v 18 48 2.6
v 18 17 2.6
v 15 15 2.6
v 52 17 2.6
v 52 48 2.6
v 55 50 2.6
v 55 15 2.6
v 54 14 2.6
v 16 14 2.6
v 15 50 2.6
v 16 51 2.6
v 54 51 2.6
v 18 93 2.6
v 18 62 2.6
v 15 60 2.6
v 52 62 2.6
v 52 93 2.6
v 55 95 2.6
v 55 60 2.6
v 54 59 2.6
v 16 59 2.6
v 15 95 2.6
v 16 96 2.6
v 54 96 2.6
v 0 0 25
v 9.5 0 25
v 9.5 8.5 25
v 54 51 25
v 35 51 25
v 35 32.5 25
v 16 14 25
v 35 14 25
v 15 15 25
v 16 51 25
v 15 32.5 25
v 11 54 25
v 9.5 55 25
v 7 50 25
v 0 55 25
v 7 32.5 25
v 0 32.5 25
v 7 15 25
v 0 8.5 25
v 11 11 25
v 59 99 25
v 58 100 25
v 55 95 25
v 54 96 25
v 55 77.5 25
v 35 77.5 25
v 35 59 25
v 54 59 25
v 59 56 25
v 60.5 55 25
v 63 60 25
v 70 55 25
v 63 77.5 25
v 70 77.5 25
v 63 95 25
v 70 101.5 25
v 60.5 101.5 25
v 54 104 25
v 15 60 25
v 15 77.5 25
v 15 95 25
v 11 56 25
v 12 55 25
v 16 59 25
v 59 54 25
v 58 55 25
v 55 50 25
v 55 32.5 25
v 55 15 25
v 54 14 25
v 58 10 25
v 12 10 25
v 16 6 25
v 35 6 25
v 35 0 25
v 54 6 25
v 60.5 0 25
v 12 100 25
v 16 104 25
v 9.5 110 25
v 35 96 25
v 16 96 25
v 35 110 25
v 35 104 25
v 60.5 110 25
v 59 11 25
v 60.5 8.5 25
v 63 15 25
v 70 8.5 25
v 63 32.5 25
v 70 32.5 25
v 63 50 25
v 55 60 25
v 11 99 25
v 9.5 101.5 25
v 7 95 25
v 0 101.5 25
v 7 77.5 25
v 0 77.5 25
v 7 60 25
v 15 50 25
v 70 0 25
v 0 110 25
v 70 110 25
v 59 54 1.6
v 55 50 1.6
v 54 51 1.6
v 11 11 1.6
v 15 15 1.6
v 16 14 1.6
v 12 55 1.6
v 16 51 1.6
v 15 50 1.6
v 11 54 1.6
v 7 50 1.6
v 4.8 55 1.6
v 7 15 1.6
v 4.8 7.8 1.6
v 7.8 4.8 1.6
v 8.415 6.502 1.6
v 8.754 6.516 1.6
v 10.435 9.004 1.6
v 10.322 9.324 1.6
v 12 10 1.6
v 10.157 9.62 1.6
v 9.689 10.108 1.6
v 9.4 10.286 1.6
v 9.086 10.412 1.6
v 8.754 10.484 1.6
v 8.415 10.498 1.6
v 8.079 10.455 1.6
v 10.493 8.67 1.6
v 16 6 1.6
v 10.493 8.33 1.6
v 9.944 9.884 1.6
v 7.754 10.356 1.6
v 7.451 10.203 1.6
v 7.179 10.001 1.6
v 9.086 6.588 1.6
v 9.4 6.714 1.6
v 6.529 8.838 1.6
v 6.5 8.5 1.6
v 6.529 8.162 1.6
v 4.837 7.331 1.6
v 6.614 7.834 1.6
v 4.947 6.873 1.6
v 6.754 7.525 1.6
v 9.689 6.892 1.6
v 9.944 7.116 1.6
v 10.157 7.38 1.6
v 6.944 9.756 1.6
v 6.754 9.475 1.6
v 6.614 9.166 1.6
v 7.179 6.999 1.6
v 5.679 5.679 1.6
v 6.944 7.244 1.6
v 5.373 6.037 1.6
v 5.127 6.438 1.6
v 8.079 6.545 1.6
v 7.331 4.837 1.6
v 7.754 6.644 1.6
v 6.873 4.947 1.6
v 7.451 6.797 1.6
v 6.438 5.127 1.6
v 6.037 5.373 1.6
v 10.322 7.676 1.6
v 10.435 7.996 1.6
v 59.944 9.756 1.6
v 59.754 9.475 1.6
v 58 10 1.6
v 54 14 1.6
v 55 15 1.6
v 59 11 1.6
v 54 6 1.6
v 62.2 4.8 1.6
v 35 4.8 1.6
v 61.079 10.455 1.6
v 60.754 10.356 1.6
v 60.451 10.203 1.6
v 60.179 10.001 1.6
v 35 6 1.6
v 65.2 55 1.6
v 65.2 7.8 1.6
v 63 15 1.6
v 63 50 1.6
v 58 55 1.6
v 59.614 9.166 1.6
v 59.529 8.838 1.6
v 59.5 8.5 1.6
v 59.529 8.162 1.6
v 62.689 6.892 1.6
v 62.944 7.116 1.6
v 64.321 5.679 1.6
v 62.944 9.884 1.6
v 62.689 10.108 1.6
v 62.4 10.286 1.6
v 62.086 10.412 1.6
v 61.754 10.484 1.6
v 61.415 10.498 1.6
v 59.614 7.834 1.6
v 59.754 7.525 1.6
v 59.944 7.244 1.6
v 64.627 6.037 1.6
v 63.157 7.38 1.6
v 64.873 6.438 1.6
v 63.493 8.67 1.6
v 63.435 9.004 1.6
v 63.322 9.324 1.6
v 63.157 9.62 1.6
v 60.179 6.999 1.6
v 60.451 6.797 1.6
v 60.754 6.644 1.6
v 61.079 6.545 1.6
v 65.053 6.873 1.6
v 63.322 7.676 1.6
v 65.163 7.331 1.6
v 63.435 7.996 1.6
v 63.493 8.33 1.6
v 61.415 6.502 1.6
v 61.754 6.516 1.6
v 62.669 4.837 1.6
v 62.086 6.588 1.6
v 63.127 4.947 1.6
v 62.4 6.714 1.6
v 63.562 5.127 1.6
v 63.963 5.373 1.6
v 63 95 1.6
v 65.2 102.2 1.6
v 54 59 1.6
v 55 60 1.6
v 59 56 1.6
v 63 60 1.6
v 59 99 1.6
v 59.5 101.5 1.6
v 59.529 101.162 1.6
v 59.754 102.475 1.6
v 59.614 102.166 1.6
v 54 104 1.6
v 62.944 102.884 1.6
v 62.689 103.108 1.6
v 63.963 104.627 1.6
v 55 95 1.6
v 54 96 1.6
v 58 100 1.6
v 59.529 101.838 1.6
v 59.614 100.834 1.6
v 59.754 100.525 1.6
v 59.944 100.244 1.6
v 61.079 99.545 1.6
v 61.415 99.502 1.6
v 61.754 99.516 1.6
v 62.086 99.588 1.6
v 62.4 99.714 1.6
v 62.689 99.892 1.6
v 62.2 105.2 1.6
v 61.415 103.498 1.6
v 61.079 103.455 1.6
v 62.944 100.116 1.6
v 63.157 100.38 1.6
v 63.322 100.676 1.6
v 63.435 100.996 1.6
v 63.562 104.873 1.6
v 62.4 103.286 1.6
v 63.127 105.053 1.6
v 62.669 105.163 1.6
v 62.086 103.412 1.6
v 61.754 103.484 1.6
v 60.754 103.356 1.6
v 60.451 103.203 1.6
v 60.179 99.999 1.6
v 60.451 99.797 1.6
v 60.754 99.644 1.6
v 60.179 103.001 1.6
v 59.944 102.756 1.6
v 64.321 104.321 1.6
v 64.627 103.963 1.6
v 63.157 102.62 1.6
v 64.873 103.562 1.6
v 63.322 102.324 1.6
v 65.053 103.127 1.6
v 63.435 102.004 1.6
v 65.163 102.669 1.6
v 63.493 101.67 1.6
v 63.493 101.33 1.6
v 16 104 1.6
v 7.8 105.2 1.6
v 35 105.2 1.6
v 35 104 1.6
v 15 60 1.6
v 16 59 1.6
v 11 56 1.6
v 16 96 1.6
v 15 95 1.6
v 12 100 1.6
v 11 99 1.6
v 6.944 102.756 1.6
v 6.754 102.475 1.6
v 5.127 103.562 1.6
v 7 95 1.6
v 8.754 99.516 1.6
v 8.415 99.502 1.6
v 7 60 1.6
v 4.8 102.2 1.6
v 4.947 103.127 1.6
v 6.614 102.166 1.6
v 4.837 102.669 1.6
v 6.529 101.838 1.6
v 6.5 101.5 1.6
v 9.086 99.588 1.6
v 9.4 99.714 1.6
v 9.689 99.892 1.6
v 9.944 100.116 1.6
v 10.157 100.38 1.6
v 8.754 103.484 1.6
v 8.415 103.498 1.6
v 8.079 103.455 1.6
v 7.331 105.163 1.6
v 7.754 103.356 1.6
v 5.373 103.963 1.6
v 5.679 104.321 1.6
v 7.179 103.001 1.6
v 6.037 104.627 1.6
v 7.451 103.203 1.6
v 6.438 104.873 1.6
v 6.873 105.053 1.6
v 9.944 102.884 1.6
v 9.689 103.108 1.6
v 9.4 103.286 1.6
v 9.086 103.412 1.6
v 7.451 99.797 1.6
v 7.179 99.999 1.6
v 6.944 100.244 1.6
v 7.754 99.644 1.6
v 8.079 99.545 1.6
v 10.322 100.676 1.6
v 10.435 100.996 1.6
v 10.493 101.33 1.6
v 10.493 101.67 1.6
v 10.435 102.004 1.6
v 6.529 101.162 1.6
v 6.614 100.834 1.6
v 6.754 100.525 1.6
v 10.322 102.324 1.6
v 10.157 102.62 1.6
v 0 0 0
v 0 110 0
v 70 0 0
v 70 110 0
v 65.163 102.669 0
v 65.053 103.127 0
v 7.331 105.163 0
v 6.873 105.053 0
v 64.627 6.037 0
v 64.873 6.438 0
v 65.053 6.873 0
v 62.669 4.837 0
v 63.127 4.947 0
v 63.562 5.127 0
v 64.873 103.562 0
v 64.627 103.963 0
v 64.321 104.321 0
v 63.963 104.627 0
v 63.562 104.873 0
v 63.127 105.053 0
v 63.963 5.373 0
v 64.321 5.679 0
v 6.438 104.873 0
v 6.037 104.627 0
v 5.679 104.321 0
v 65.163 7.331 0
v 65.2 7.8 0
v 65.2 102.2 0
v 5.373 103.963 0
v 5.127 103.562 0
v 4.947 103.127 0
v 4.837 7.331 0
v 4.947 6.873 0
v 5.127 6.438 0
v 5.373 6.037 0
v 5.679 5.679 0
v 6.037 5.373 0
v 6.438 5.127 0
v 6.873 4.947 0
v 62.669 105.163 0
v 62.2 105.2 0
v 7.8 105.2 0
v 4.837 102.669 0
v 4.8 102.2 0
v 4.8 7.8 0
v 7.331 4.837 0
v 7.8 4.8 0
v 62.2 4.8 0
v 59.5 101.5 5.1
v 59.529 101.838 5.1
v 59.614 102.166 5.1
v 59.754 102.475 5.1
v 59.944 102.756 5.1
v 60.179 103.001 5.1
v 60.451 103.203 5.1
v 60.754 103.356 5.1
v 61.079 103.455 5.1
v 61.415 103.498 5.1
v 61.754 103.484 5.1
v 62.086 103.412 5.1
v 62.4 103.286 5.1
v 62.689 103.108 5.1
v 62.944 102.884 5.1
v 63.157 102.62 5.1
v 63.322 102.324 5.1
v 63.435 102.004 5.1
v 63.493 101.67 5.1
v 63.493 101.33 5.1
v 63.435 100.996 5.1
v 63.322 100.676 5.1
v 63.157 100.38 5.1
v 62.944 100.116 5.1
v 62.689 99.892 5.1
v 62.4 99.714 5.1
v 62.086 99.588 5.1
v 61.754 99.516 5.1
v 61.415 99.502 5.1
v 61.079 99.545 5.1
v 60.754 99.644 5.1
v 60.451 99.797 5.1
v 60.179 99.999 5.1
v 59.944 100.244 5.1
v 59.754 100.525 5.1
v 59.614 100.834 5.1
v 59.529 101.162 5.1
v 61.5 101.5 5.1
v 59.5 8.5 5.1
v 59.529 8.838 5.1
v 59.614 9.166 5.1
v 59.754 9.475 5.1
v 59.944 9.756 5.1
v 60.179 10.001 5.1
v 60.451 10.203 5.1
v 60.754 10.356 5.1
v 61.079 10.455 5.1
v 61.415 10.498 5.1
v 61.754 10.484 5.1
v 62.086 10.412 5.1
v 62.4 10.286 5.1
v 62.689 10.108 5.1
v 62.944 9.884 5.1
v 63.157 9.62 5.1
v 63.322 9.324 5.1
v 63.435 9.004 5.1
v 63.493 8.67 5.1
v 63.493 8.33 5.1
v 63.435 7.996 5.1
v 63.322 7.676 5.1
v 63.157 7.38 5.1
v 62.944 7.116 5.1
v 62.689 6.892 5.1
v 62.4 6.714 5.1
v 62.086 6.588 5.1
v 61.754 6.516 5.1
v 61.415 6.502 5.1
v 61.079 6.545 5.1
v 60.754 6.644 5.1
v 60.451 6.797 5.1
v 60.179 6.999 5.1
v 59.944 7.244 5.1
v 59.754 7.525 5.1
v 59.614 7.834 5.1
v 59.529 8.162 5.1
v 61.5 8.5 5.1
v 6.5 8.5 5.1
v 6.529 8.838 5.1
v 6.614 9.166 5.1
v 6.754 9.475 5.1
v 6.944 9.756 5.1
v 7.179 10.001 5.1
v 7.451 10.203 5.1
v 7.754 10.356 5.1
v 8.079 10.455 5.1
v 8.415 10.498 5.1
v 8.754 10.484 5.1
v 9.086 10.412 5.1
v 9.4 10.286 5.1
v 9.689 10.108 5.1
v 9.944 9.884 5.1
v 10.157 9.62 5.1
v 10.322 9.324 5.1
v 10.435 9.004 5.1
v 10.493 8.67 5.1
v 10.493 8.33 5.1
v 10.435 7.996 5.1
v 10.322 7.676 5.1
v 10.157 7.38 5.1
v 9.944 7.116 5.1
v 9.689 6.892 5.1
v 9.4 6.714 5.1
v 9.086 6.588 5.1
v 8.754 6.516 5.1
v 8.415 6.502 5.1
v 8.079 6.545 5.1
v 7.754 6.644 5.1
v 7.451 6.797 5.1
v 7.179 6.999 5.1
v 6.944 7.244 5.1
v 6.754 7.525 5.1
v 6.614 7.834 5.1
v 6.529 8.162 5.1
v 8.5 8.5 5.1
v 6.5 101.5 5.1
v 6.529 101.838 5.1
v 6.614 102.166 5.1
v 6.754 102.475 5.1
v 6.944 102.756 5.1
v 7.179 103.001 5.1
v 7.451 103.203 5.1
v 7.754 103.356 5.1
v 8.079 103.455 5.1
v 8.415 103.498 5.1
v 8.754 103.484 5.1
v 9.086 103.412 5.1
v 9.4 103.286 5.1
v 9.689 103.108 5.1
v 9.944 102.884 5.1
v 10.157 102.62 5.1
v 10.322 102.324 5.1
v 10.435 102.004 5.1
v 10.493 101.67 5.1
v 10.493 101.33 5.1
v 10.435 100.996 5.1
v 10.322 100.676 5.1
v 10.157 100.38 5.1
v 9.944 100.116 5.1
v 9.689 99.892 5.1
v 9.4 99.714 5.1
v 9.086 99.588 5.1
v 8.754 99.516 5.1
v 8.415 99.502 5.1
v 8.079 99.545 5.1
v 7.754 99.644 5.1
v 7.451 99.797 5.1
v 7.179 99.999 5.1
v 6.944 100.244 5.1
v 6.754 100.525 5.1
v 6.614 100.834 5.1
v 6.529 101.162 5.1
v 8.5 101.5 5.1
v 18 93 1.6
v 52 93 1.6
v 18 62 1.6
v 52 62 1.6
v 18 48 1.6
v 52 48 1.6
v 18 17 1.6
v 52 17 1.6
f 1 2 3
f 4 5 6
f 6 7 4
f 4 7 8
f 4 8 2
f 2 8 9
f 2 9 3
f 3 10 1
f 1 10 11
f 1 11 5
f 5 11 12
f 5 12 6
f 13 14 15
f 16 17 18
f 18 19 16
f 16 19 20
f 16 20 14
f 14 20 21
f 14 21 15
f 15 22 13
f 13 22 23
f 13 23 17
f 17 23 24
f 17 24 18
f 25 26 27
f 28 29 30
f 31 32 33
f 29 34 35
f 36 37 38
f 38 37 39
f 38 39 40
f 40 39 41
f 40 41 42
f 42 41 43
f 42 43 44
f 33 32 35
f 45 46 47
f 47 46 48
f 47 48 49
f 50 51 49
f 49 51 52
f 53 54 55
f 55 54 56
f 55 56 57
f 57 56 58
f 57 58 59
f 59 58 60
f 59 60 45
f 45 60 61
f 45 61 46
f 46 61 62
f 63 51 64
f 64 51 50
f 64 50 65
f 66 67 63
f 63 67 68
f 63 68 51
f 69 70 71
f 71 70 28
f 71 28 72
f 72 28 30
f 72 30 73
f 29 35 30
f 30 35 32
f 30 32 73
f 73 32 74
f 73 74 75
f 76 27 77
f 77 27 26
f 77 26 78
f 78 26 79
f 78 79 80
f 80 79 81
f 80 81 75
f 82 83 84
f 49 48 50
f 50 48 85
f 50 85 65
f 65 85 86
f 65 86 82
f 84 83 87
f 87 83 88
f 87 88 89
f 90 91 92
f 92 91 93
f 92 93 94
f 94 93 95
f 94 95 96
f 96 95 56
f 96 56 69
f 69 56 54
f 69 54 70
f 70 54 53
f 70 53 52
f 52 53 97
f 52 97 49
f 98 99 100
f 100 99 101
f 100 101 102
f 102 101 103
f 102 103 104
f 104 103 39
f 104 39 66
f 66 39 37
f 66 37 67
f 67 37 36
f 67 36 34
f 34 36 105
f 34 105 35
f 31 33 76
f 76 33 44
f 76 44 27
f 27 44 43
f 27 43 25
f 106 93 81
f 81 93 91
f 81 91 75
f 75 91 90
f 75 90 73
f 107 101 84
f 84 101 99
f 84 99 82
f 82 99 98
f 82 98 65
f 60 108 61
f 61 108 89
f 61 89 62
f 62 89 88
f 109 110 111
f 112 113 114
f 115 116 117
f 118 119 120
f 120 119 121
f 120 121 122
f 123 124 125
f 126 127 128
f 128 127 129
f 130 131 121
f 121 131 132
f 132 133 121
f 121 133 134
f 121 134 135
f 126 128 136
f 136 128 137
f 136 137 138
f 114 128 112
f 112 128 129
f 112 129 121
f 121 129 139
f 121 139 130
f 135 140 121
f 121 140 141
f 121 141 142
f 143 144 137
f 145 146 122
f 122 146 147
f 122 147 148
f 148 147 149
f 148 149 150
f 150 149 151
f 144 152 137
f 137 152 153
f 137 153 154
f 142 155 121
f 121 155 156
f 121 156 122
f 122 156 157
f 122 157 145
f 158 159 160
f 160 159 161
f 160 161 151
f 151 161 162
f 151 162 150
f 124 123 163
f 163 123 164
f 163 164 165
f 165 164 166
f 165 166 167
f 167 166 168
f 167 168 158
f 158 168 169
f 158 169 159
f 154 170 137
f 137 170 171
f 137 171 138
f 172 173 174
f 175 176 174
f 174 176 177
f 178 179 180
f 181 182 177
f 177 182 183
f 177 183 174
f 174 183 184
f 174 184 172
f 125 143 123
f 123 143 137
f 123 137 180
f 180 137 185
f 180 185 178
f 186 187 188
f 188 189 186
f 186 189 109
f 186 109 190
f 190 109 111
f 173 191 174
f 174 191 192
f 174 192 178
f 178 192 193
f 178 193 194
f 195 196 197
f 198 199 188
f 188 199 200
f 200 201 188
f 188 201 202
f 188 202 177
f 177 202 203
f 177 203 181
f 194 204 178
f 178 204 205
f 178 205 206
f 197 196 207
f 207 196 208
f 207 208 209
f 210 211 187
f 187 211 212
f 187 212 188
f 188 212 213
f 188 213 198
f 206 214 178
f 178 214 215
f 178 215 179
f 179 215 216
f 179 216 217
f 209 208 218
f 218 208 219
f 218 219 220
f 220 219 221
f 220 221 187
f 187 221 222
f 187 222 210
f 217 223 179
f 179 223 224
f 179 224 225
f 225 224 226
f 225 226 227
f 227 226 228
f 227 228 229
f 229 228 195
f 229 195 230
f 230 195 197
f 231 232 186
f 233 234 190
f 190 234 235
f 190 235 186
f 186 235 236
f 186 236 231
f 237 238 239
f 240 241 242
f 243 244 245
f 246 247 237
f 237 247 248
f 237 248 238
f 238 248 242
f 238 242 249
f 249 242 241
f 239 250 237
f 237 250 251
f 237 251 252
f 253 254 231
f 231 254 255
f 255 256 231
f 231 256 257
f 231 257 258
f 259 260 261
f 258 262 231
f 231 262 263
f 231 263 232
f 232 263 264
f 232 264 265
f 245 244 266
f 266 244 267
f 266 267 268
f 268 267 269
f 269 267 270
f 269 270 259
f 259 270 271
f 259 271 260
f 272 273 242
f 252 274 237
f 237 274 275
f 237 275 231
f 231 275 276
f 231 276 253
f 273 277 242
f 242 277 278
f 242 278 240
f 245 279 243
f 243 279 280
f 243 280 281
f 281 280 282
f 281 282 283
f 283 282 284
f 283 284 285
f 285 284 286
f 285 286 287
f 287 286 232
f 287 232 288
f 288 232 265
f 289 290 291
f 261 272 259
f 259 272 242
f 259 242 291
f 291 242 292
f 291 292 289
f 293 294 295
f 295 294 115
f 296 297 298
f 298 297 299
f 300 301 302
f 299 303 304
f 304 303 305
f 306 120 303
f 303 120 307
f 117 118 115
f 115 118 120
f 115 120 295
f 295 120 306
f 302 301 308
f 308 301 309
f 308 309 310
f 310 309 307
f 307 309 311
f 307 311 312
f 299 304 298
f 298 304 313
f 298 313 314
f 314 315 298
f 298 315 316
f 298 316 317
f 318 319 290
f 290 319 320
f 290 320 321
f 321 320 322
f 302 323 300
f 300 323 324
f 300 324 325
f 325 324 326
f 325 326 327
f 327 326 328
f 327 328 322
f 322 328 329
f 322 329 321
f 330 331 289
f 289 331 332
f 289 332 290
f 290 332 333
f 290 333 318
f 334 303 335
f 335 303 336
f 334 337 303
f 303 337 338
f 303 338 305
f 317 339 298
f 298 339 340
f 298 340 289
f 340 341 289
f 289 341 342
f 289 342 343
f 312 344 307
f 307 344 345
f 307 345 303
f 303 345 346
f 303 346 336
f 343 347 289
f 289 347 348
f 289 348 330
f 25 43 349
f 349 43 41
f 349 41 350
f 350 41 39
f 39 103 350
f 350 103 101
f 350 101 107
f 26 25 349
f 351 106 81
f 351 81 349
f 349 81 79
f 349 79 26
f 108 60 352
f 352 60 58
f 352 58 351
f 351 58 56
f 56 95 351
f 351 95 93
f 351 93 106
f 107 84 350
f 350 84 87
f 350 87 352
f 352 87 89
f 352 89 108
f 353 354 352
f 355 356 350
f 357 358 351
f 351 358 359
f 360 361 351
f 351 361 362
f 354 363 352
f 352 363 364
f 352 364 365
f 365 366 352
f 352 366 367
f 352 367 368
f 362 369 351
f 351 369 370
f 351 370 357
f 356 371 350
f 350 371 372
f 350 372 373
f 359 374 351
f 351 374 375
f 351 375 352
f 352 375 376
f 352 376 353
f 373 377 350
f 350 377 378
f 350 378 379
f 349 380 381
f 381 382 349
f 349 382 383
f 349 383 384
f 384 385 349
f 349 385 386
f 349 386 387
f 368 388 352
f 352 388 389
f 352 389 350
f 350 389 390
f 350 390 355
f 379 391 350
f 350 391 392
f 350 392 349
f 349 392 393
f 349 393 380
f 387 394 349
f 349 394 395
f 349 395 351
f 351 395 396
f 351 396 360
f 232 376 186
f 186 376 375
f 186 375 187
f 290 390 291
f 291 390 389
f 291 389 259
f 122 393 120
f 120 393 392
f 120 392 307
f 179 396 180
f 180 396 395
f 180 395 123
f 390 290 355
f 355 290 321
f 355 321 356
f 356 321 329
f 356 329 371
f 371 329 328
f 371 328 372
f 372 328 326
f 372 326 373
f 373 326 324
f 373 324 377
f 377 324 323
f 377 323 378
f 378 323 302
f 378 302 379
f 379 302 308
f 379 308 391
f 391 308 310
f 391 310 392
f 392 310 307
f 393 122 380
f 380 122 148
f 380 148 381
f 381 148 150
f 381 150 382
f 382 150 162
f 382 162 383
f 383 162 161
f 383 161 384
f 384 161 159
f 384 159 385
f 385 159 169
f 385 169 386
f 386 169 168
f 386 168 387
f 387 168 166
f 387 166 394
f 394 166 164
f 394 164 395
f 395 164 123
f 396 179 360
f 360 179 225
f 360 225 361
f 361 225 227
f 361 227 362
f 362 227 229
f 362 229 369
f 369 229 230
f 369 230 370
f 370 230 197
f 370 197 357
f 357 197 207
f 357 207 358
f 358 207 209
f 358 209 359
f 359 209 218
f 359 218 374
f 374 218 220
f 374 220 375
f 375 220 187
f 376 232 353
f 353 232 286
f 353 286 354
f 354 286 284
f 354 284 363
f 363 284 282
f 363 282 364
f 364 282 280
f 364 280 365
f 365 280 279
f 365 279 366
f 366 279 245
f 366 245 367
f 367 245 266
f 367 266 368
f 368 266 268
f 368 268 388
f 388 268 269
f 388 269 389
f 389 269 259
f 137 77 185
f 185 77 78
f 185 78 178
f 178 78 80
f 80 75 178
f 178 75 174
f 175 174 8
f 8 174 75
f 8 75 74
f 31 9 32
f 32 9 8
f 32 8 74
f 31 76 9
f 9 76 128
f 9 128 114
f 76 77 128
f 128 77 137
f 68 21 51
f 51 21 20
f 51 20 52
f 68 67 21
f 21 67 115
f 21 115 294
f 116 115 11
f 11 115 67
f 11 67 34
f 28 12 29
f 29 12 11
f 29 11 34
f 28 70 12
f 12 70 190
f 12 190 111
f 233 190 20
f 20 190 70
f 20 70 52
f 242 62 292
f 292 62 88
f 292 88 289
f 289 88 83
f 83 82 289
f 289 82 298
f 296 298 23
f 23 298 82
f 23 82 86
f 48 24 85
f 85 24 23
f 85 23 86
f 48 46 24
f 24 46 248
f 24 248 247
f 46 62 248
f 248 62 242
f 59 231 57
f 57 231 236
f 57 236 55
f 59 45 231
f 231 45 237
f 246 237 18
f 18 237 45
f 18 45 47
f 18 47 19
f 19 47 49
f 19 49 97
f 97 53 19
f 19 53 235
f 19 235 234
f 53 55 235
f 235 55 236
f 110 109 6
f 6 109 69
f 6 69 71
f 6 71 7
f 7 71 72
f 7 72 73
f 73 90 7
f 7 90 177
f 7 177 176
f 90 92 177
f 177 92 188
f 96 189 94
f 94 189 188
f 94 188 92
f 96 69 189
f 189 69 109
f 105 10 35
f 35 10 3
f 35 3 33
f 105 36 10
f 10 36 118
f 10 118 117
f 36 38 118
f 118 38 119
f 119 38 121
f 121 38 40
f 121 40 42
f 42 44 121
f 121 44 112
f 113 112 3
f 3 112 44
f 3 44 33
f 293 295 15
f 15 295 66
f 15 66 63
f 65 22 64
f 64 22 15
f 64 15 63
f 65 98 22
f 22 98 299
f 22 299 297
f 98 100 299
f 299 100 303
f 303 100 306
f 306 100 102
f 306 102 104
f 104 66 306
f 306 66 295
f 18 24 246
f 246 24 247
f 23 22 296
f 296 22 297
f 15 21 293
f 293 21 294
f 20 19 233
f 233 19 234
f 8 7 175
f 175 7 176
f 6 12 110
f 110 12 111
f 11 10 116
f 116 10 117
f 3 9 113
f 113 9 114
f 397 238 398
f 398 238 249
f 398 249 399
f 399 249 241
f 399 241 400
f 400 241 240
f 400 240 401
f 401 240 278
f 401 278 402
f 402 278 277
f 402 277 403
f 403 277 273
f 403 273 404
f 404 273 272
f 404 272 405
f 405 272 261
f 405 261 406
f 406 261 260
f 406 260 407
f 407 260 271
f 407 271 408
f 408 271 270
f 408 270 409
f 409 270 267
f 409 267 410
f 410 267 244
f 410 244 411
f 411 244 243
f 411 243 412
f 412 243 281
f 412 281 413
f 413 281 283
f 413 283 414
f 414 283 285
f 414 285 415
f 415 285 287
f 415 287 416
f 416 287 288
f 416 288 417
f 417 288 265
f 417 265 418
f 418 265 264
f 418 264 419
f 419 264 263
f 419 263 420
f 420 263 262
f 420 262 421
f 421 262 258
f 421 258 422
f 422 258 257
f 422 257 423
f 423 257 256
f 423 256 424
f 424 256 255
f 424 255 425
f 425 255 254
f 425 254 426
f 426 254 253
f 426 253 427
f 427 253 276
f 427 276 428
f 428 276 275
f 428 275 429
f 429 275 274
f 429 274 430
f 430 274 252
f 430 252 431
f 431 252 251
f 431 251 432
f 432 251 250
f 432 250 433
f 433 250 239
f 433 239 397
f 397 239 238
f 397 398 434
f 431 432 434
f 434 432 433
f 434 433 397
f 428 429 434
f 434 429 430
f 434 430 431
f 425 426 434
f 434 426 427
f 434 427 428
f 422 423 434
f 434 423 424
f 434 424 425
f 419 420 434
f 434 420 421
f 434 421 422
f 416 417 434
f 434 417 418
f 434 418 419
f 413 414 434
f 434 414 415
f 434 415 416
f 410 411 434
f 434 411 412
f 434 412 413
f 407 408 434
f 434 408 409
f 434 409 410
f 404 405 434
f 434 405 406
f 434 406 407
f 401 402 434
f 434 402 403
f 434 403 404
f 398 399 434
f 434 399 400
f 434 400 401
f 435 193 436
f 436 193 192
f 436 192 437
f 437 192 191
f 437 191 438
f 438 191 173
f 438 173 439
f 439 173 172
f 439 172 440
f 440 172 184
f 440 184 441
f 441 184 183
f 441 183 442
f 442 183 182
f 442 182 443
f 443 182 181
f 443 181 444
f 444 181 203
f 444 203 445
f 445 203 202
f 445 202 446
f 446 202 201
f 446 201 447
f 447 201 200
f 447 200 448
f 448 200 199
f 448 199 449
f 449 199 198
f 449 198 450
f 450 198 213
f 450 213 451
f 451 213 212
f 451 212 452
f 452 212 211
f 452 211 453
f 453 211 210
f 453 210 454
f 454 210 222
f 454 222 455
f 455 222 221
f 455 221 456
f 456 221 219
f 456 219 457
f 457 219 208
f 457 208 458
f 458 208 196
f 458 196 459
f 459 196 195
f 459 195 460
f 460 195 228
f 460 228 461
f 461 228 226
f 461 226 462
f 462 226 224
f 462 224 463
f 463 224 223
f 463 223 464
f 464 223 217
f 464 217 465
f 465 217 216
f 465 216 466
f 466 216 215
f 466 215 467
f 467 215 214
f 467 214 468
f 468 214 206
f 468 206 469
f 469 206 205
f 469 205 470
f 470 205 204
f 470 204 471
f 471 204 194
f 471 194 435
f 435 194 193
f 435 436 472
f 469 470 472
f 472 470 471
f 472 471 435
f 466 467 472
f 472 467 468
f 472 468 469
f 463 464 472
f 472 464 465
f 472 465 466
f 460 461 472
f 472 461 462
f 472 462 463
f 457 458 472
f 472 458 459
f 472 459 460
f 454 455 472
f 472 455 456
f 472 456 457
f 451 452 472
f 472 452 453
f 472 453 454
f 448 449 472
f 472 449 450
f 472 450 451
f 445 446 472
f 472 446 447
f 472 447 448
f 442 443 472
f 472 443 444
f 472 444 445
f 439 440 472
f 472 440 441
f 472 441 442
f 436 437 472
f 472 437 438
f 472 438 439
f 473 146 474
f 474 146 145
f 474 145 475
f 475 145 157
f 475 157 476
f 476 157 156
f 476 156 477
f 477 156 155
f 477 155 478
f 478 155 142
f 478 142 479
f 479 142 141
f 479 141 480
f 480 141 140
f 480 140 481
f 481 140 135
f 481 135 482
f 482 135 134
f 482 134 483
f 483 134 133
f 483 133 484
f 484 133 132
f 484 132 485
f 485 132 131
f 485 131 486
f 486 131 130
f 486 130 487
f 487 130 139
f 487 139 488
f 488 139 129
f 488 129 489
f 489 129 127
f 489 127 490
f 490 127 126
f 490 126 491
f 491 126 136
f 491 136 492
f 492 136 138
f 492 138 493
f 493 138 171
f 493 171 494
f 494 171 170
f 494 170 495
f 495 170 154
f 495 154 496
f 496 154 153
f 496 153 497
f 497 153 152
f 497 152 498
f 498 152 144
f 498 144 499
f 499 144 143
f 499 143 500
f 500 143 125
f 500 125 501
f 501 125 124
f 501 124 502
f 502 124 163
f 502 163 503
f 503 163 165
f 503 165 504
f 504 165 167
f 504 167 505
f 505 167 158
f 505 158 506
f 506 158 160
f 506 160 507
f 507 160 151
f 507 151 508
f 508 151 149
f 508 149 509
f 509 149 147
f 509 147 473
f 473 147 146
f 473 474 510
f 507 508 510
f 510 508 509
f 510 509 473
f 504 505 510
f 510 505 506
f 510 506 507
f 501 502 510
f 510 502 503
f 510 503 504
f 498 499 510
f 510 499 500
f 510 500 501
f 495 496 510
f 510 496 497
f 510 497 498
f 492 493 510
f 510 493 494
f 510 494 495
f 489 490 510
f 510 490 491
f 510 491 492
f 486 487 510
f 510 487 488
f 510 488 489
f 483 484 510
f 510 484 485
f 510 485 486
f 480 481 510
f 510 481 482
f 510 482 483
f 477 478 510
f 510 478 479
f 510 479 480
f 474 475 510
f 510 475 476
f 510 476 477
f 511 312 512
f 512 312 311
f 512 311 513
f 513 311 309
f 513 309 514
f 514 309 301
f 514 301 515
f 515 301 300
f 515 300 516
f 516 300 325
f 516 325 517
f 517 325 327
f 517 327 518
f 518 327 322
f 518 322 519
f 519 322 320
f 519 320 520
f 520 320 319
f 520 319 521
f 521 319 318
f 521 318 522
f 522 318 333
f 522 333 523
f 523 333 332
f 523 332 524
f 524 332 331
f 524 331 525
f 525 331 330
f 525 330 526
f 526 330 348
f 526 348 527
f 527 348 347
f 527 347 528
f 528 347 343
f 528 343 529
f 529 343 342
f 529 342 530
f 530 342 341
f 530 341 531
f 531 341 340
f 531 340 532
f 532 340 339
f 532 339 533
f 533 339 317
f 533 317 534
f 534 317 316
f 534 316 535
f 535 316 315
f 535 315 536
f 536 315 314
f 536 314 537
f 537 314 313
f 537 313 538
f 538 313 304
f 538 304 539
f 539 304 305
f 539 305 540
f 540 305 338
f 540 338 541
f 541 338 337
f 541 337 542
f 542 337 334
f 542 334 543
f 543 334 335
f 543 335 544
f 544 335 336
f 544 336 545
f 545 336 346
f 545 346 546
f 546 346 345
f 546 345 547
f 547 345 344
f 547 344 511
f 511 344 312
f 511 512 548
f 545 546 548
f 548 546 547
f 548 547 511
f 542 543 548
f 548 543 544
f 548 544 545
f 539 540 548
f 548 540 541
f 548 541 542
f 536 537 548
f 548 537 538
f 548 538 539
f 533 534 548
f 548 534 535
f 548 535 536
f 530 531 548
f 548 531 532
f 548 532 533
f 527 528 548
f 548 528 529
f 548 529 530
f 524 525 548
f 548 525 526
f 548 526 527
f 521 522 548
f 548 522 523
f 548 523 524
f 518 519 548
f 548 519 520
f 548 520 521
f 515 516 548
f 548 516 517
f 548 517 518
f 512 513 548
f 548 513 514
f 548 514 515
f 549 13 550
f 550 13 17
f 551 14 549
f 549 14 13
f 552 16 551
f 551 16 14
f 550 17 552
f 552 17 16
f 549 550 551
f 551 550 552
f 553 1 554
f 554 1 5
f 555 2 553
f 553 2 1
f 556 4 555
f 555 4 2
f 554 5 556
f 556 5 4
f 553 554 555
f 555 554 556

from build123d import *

# Parameters (mm, degrees)
SKETCH1_W           = 70
SKETCH1_H           = 110
BOSS_EXTRUDE1_DEPTH = 25
SKETCH2_W           = 60.4
SKETCH2_H           = 100.4
CUT_EXTRUDE1_DEPTH  = 1.6
FILLET1_R           = 3
CUT_EXTRUDE4_DEPTH  = 133.467203488
CUT_EXTRUDE5_DEPTH  = 133.467203488
CUT_EXTRUDE6_DEPTH  = 1
SKETCH3_R           = 2
CUT_EXTRUDE7_DEPTH  = 3.5
SKETCH8_W           = 34
SKETCH8_H           = 31
BOSS_EXTRUDE2_DEPTH = 1


with BuildPart() as part:
    # Sketch1 → Boss-Extrude1 (new body)
    with BuildSketch(Plane.XY):
        with Locations((35, 55)):
            Rectangle(SKETCH1_W, SKETCH1_H)
    extrude(amount=BOSS_EXTRUDE1_DEPTH)

    # Sketch2 → Cut-Extrude1 (cut)
    with BuildSketch(Plane(origin=(0, 0, 0), x_dir=(-1, 0, 0), z_dir=(0, 0, -1))):
        with Locations((-35, 55)):
            Rectangle(SKETCH2_W, SKETCH2_H)
    extrude(amount=-CUT_EXTRUDE1_DEPTH, mode=Mode.SUBTRACT)

    # Fillet1
    fillet1_edges = [part.edges().sort_by_distance(p)[0] for p in [
        (65.2, 4.8, 0.8),
        (65.2, 105.2, 0.8),
        (4.8, 105.2, 0.8),
        (4.8, 4.8, 0.8),
    ]]
    fillet(fillet1_edges, radius=FILLET1_R)

    # Sketch5 → Cut-Extrude4 (cut, through all)
    with BuildSketch(Plane(origin=(0, 0, 1.6), x_dir=(-1, 0, 0), z_dir=(0, 0, -1))):
        Polygon((-54, 14), (-16, 14), (-12, 10), (-16, 6), (-54, 6), (-58, 10), align=None)
        Polygon((-58, 55), (-54, 59), (-16, 59), (-12, 55), (-16, 51), (-54, 51), align=None)
        Polygon((-58, 100), (-54, 104), (-16, 104), (-12, 100), (-16, 96), (-54, 96), align=None)
    extrude(amount=-CUT_EXTRUDE4_DEPTH, mode=Mode.SUBTRACT)

    # Sketch6 → Cut-Extrude5 (cut, through all)
    with BuildSketch(Plane(origin=(0, 0, 1.6), x_dir=(-1, 0, 0), z_dir=(0, 0, -1))):
        Polygon((-55, 15), (-55, 50), (-59, 54), (-63, 50), (-63, 15), (-59, 11), align=None)
        Polygon((-15, 50), (-11, 54), (-7, 50), (-7, 15), (-11, 11), (-15, 15), align=None)
        Polygon((-63, 95), (-59, 99), (-55, 95), (-55, 60), (-59, 56), (-63, 60), align=None)
        Polygon((-15, 95), (-11, 99), (-7, 95), (-7, 60), (-11, 56), (-15, 60), align=None)
    extrude(amount=-CUT_EXTRUDE5_DEPTH, mode=Mode.SUBTRACT)

    # Sketch7 → Cut-Extrude6 (cut)
    with BuildSketch(Plane(origin=(0, 0, 1.6), x_dir=(-1, 0, 0), z_dir=(0, 0, -1))):
        Polygon((-55, 95), (-54, 96), (-16, 96), (-15, 95), (-15, 60), (-16, 59), (-54, 59), (-55, 60), align=None)
        Polygon((-54, 14), (-55, 15), (-55, 50), (-54, 51), (-16, 51), (-15, 50), (-15, 15), (-16, 14), align=None)
    extrude(amount=-CUT_EXTRUDE6_DEPTH, mode=Mode.SUBTRACT)

    # Sketch3 → Cut-Extrude7 (cut)
    with BuildSketch(Plane(origin=(0, 0, 1.6), x_dir=(-1, 0, 0), z_dir=(0, 0, -1))):
        with Locations((-61.5, 101.5)):
            Circle(SKETCH3_R)
        with Locations((-61.5, 8.5)):
            Circle(SKETCH3_R)
        with Locations((-8.5, 8.5)):
            Circle(SKETCH3_R)
        with Locations((-8.5, 101.5)):
            Circle(SKETCH3_R)
    extrude(amount=-CUT_EXTRUDE7_DEPTH, mode=Mode.SUBTRACT)

    # Sketch8 → Boss-Extrude2 (add)
    with BuildSketch(Plane(origin=(0, 0, 2.6), x_dir=(-1, 0, 0), z_dir=(0, 0, -1))):
        with Locations((-35, 77.5)):
            Rectangle(SKETCH8_W, SKETCH8_H)
        with Locations((-35, 32.5)):
            Rectangle(SKETCH8_W, SKETCH8_H)
    extrude(amount=BOSS_EXTRUDE2_DEPTH)


solid = part.part
